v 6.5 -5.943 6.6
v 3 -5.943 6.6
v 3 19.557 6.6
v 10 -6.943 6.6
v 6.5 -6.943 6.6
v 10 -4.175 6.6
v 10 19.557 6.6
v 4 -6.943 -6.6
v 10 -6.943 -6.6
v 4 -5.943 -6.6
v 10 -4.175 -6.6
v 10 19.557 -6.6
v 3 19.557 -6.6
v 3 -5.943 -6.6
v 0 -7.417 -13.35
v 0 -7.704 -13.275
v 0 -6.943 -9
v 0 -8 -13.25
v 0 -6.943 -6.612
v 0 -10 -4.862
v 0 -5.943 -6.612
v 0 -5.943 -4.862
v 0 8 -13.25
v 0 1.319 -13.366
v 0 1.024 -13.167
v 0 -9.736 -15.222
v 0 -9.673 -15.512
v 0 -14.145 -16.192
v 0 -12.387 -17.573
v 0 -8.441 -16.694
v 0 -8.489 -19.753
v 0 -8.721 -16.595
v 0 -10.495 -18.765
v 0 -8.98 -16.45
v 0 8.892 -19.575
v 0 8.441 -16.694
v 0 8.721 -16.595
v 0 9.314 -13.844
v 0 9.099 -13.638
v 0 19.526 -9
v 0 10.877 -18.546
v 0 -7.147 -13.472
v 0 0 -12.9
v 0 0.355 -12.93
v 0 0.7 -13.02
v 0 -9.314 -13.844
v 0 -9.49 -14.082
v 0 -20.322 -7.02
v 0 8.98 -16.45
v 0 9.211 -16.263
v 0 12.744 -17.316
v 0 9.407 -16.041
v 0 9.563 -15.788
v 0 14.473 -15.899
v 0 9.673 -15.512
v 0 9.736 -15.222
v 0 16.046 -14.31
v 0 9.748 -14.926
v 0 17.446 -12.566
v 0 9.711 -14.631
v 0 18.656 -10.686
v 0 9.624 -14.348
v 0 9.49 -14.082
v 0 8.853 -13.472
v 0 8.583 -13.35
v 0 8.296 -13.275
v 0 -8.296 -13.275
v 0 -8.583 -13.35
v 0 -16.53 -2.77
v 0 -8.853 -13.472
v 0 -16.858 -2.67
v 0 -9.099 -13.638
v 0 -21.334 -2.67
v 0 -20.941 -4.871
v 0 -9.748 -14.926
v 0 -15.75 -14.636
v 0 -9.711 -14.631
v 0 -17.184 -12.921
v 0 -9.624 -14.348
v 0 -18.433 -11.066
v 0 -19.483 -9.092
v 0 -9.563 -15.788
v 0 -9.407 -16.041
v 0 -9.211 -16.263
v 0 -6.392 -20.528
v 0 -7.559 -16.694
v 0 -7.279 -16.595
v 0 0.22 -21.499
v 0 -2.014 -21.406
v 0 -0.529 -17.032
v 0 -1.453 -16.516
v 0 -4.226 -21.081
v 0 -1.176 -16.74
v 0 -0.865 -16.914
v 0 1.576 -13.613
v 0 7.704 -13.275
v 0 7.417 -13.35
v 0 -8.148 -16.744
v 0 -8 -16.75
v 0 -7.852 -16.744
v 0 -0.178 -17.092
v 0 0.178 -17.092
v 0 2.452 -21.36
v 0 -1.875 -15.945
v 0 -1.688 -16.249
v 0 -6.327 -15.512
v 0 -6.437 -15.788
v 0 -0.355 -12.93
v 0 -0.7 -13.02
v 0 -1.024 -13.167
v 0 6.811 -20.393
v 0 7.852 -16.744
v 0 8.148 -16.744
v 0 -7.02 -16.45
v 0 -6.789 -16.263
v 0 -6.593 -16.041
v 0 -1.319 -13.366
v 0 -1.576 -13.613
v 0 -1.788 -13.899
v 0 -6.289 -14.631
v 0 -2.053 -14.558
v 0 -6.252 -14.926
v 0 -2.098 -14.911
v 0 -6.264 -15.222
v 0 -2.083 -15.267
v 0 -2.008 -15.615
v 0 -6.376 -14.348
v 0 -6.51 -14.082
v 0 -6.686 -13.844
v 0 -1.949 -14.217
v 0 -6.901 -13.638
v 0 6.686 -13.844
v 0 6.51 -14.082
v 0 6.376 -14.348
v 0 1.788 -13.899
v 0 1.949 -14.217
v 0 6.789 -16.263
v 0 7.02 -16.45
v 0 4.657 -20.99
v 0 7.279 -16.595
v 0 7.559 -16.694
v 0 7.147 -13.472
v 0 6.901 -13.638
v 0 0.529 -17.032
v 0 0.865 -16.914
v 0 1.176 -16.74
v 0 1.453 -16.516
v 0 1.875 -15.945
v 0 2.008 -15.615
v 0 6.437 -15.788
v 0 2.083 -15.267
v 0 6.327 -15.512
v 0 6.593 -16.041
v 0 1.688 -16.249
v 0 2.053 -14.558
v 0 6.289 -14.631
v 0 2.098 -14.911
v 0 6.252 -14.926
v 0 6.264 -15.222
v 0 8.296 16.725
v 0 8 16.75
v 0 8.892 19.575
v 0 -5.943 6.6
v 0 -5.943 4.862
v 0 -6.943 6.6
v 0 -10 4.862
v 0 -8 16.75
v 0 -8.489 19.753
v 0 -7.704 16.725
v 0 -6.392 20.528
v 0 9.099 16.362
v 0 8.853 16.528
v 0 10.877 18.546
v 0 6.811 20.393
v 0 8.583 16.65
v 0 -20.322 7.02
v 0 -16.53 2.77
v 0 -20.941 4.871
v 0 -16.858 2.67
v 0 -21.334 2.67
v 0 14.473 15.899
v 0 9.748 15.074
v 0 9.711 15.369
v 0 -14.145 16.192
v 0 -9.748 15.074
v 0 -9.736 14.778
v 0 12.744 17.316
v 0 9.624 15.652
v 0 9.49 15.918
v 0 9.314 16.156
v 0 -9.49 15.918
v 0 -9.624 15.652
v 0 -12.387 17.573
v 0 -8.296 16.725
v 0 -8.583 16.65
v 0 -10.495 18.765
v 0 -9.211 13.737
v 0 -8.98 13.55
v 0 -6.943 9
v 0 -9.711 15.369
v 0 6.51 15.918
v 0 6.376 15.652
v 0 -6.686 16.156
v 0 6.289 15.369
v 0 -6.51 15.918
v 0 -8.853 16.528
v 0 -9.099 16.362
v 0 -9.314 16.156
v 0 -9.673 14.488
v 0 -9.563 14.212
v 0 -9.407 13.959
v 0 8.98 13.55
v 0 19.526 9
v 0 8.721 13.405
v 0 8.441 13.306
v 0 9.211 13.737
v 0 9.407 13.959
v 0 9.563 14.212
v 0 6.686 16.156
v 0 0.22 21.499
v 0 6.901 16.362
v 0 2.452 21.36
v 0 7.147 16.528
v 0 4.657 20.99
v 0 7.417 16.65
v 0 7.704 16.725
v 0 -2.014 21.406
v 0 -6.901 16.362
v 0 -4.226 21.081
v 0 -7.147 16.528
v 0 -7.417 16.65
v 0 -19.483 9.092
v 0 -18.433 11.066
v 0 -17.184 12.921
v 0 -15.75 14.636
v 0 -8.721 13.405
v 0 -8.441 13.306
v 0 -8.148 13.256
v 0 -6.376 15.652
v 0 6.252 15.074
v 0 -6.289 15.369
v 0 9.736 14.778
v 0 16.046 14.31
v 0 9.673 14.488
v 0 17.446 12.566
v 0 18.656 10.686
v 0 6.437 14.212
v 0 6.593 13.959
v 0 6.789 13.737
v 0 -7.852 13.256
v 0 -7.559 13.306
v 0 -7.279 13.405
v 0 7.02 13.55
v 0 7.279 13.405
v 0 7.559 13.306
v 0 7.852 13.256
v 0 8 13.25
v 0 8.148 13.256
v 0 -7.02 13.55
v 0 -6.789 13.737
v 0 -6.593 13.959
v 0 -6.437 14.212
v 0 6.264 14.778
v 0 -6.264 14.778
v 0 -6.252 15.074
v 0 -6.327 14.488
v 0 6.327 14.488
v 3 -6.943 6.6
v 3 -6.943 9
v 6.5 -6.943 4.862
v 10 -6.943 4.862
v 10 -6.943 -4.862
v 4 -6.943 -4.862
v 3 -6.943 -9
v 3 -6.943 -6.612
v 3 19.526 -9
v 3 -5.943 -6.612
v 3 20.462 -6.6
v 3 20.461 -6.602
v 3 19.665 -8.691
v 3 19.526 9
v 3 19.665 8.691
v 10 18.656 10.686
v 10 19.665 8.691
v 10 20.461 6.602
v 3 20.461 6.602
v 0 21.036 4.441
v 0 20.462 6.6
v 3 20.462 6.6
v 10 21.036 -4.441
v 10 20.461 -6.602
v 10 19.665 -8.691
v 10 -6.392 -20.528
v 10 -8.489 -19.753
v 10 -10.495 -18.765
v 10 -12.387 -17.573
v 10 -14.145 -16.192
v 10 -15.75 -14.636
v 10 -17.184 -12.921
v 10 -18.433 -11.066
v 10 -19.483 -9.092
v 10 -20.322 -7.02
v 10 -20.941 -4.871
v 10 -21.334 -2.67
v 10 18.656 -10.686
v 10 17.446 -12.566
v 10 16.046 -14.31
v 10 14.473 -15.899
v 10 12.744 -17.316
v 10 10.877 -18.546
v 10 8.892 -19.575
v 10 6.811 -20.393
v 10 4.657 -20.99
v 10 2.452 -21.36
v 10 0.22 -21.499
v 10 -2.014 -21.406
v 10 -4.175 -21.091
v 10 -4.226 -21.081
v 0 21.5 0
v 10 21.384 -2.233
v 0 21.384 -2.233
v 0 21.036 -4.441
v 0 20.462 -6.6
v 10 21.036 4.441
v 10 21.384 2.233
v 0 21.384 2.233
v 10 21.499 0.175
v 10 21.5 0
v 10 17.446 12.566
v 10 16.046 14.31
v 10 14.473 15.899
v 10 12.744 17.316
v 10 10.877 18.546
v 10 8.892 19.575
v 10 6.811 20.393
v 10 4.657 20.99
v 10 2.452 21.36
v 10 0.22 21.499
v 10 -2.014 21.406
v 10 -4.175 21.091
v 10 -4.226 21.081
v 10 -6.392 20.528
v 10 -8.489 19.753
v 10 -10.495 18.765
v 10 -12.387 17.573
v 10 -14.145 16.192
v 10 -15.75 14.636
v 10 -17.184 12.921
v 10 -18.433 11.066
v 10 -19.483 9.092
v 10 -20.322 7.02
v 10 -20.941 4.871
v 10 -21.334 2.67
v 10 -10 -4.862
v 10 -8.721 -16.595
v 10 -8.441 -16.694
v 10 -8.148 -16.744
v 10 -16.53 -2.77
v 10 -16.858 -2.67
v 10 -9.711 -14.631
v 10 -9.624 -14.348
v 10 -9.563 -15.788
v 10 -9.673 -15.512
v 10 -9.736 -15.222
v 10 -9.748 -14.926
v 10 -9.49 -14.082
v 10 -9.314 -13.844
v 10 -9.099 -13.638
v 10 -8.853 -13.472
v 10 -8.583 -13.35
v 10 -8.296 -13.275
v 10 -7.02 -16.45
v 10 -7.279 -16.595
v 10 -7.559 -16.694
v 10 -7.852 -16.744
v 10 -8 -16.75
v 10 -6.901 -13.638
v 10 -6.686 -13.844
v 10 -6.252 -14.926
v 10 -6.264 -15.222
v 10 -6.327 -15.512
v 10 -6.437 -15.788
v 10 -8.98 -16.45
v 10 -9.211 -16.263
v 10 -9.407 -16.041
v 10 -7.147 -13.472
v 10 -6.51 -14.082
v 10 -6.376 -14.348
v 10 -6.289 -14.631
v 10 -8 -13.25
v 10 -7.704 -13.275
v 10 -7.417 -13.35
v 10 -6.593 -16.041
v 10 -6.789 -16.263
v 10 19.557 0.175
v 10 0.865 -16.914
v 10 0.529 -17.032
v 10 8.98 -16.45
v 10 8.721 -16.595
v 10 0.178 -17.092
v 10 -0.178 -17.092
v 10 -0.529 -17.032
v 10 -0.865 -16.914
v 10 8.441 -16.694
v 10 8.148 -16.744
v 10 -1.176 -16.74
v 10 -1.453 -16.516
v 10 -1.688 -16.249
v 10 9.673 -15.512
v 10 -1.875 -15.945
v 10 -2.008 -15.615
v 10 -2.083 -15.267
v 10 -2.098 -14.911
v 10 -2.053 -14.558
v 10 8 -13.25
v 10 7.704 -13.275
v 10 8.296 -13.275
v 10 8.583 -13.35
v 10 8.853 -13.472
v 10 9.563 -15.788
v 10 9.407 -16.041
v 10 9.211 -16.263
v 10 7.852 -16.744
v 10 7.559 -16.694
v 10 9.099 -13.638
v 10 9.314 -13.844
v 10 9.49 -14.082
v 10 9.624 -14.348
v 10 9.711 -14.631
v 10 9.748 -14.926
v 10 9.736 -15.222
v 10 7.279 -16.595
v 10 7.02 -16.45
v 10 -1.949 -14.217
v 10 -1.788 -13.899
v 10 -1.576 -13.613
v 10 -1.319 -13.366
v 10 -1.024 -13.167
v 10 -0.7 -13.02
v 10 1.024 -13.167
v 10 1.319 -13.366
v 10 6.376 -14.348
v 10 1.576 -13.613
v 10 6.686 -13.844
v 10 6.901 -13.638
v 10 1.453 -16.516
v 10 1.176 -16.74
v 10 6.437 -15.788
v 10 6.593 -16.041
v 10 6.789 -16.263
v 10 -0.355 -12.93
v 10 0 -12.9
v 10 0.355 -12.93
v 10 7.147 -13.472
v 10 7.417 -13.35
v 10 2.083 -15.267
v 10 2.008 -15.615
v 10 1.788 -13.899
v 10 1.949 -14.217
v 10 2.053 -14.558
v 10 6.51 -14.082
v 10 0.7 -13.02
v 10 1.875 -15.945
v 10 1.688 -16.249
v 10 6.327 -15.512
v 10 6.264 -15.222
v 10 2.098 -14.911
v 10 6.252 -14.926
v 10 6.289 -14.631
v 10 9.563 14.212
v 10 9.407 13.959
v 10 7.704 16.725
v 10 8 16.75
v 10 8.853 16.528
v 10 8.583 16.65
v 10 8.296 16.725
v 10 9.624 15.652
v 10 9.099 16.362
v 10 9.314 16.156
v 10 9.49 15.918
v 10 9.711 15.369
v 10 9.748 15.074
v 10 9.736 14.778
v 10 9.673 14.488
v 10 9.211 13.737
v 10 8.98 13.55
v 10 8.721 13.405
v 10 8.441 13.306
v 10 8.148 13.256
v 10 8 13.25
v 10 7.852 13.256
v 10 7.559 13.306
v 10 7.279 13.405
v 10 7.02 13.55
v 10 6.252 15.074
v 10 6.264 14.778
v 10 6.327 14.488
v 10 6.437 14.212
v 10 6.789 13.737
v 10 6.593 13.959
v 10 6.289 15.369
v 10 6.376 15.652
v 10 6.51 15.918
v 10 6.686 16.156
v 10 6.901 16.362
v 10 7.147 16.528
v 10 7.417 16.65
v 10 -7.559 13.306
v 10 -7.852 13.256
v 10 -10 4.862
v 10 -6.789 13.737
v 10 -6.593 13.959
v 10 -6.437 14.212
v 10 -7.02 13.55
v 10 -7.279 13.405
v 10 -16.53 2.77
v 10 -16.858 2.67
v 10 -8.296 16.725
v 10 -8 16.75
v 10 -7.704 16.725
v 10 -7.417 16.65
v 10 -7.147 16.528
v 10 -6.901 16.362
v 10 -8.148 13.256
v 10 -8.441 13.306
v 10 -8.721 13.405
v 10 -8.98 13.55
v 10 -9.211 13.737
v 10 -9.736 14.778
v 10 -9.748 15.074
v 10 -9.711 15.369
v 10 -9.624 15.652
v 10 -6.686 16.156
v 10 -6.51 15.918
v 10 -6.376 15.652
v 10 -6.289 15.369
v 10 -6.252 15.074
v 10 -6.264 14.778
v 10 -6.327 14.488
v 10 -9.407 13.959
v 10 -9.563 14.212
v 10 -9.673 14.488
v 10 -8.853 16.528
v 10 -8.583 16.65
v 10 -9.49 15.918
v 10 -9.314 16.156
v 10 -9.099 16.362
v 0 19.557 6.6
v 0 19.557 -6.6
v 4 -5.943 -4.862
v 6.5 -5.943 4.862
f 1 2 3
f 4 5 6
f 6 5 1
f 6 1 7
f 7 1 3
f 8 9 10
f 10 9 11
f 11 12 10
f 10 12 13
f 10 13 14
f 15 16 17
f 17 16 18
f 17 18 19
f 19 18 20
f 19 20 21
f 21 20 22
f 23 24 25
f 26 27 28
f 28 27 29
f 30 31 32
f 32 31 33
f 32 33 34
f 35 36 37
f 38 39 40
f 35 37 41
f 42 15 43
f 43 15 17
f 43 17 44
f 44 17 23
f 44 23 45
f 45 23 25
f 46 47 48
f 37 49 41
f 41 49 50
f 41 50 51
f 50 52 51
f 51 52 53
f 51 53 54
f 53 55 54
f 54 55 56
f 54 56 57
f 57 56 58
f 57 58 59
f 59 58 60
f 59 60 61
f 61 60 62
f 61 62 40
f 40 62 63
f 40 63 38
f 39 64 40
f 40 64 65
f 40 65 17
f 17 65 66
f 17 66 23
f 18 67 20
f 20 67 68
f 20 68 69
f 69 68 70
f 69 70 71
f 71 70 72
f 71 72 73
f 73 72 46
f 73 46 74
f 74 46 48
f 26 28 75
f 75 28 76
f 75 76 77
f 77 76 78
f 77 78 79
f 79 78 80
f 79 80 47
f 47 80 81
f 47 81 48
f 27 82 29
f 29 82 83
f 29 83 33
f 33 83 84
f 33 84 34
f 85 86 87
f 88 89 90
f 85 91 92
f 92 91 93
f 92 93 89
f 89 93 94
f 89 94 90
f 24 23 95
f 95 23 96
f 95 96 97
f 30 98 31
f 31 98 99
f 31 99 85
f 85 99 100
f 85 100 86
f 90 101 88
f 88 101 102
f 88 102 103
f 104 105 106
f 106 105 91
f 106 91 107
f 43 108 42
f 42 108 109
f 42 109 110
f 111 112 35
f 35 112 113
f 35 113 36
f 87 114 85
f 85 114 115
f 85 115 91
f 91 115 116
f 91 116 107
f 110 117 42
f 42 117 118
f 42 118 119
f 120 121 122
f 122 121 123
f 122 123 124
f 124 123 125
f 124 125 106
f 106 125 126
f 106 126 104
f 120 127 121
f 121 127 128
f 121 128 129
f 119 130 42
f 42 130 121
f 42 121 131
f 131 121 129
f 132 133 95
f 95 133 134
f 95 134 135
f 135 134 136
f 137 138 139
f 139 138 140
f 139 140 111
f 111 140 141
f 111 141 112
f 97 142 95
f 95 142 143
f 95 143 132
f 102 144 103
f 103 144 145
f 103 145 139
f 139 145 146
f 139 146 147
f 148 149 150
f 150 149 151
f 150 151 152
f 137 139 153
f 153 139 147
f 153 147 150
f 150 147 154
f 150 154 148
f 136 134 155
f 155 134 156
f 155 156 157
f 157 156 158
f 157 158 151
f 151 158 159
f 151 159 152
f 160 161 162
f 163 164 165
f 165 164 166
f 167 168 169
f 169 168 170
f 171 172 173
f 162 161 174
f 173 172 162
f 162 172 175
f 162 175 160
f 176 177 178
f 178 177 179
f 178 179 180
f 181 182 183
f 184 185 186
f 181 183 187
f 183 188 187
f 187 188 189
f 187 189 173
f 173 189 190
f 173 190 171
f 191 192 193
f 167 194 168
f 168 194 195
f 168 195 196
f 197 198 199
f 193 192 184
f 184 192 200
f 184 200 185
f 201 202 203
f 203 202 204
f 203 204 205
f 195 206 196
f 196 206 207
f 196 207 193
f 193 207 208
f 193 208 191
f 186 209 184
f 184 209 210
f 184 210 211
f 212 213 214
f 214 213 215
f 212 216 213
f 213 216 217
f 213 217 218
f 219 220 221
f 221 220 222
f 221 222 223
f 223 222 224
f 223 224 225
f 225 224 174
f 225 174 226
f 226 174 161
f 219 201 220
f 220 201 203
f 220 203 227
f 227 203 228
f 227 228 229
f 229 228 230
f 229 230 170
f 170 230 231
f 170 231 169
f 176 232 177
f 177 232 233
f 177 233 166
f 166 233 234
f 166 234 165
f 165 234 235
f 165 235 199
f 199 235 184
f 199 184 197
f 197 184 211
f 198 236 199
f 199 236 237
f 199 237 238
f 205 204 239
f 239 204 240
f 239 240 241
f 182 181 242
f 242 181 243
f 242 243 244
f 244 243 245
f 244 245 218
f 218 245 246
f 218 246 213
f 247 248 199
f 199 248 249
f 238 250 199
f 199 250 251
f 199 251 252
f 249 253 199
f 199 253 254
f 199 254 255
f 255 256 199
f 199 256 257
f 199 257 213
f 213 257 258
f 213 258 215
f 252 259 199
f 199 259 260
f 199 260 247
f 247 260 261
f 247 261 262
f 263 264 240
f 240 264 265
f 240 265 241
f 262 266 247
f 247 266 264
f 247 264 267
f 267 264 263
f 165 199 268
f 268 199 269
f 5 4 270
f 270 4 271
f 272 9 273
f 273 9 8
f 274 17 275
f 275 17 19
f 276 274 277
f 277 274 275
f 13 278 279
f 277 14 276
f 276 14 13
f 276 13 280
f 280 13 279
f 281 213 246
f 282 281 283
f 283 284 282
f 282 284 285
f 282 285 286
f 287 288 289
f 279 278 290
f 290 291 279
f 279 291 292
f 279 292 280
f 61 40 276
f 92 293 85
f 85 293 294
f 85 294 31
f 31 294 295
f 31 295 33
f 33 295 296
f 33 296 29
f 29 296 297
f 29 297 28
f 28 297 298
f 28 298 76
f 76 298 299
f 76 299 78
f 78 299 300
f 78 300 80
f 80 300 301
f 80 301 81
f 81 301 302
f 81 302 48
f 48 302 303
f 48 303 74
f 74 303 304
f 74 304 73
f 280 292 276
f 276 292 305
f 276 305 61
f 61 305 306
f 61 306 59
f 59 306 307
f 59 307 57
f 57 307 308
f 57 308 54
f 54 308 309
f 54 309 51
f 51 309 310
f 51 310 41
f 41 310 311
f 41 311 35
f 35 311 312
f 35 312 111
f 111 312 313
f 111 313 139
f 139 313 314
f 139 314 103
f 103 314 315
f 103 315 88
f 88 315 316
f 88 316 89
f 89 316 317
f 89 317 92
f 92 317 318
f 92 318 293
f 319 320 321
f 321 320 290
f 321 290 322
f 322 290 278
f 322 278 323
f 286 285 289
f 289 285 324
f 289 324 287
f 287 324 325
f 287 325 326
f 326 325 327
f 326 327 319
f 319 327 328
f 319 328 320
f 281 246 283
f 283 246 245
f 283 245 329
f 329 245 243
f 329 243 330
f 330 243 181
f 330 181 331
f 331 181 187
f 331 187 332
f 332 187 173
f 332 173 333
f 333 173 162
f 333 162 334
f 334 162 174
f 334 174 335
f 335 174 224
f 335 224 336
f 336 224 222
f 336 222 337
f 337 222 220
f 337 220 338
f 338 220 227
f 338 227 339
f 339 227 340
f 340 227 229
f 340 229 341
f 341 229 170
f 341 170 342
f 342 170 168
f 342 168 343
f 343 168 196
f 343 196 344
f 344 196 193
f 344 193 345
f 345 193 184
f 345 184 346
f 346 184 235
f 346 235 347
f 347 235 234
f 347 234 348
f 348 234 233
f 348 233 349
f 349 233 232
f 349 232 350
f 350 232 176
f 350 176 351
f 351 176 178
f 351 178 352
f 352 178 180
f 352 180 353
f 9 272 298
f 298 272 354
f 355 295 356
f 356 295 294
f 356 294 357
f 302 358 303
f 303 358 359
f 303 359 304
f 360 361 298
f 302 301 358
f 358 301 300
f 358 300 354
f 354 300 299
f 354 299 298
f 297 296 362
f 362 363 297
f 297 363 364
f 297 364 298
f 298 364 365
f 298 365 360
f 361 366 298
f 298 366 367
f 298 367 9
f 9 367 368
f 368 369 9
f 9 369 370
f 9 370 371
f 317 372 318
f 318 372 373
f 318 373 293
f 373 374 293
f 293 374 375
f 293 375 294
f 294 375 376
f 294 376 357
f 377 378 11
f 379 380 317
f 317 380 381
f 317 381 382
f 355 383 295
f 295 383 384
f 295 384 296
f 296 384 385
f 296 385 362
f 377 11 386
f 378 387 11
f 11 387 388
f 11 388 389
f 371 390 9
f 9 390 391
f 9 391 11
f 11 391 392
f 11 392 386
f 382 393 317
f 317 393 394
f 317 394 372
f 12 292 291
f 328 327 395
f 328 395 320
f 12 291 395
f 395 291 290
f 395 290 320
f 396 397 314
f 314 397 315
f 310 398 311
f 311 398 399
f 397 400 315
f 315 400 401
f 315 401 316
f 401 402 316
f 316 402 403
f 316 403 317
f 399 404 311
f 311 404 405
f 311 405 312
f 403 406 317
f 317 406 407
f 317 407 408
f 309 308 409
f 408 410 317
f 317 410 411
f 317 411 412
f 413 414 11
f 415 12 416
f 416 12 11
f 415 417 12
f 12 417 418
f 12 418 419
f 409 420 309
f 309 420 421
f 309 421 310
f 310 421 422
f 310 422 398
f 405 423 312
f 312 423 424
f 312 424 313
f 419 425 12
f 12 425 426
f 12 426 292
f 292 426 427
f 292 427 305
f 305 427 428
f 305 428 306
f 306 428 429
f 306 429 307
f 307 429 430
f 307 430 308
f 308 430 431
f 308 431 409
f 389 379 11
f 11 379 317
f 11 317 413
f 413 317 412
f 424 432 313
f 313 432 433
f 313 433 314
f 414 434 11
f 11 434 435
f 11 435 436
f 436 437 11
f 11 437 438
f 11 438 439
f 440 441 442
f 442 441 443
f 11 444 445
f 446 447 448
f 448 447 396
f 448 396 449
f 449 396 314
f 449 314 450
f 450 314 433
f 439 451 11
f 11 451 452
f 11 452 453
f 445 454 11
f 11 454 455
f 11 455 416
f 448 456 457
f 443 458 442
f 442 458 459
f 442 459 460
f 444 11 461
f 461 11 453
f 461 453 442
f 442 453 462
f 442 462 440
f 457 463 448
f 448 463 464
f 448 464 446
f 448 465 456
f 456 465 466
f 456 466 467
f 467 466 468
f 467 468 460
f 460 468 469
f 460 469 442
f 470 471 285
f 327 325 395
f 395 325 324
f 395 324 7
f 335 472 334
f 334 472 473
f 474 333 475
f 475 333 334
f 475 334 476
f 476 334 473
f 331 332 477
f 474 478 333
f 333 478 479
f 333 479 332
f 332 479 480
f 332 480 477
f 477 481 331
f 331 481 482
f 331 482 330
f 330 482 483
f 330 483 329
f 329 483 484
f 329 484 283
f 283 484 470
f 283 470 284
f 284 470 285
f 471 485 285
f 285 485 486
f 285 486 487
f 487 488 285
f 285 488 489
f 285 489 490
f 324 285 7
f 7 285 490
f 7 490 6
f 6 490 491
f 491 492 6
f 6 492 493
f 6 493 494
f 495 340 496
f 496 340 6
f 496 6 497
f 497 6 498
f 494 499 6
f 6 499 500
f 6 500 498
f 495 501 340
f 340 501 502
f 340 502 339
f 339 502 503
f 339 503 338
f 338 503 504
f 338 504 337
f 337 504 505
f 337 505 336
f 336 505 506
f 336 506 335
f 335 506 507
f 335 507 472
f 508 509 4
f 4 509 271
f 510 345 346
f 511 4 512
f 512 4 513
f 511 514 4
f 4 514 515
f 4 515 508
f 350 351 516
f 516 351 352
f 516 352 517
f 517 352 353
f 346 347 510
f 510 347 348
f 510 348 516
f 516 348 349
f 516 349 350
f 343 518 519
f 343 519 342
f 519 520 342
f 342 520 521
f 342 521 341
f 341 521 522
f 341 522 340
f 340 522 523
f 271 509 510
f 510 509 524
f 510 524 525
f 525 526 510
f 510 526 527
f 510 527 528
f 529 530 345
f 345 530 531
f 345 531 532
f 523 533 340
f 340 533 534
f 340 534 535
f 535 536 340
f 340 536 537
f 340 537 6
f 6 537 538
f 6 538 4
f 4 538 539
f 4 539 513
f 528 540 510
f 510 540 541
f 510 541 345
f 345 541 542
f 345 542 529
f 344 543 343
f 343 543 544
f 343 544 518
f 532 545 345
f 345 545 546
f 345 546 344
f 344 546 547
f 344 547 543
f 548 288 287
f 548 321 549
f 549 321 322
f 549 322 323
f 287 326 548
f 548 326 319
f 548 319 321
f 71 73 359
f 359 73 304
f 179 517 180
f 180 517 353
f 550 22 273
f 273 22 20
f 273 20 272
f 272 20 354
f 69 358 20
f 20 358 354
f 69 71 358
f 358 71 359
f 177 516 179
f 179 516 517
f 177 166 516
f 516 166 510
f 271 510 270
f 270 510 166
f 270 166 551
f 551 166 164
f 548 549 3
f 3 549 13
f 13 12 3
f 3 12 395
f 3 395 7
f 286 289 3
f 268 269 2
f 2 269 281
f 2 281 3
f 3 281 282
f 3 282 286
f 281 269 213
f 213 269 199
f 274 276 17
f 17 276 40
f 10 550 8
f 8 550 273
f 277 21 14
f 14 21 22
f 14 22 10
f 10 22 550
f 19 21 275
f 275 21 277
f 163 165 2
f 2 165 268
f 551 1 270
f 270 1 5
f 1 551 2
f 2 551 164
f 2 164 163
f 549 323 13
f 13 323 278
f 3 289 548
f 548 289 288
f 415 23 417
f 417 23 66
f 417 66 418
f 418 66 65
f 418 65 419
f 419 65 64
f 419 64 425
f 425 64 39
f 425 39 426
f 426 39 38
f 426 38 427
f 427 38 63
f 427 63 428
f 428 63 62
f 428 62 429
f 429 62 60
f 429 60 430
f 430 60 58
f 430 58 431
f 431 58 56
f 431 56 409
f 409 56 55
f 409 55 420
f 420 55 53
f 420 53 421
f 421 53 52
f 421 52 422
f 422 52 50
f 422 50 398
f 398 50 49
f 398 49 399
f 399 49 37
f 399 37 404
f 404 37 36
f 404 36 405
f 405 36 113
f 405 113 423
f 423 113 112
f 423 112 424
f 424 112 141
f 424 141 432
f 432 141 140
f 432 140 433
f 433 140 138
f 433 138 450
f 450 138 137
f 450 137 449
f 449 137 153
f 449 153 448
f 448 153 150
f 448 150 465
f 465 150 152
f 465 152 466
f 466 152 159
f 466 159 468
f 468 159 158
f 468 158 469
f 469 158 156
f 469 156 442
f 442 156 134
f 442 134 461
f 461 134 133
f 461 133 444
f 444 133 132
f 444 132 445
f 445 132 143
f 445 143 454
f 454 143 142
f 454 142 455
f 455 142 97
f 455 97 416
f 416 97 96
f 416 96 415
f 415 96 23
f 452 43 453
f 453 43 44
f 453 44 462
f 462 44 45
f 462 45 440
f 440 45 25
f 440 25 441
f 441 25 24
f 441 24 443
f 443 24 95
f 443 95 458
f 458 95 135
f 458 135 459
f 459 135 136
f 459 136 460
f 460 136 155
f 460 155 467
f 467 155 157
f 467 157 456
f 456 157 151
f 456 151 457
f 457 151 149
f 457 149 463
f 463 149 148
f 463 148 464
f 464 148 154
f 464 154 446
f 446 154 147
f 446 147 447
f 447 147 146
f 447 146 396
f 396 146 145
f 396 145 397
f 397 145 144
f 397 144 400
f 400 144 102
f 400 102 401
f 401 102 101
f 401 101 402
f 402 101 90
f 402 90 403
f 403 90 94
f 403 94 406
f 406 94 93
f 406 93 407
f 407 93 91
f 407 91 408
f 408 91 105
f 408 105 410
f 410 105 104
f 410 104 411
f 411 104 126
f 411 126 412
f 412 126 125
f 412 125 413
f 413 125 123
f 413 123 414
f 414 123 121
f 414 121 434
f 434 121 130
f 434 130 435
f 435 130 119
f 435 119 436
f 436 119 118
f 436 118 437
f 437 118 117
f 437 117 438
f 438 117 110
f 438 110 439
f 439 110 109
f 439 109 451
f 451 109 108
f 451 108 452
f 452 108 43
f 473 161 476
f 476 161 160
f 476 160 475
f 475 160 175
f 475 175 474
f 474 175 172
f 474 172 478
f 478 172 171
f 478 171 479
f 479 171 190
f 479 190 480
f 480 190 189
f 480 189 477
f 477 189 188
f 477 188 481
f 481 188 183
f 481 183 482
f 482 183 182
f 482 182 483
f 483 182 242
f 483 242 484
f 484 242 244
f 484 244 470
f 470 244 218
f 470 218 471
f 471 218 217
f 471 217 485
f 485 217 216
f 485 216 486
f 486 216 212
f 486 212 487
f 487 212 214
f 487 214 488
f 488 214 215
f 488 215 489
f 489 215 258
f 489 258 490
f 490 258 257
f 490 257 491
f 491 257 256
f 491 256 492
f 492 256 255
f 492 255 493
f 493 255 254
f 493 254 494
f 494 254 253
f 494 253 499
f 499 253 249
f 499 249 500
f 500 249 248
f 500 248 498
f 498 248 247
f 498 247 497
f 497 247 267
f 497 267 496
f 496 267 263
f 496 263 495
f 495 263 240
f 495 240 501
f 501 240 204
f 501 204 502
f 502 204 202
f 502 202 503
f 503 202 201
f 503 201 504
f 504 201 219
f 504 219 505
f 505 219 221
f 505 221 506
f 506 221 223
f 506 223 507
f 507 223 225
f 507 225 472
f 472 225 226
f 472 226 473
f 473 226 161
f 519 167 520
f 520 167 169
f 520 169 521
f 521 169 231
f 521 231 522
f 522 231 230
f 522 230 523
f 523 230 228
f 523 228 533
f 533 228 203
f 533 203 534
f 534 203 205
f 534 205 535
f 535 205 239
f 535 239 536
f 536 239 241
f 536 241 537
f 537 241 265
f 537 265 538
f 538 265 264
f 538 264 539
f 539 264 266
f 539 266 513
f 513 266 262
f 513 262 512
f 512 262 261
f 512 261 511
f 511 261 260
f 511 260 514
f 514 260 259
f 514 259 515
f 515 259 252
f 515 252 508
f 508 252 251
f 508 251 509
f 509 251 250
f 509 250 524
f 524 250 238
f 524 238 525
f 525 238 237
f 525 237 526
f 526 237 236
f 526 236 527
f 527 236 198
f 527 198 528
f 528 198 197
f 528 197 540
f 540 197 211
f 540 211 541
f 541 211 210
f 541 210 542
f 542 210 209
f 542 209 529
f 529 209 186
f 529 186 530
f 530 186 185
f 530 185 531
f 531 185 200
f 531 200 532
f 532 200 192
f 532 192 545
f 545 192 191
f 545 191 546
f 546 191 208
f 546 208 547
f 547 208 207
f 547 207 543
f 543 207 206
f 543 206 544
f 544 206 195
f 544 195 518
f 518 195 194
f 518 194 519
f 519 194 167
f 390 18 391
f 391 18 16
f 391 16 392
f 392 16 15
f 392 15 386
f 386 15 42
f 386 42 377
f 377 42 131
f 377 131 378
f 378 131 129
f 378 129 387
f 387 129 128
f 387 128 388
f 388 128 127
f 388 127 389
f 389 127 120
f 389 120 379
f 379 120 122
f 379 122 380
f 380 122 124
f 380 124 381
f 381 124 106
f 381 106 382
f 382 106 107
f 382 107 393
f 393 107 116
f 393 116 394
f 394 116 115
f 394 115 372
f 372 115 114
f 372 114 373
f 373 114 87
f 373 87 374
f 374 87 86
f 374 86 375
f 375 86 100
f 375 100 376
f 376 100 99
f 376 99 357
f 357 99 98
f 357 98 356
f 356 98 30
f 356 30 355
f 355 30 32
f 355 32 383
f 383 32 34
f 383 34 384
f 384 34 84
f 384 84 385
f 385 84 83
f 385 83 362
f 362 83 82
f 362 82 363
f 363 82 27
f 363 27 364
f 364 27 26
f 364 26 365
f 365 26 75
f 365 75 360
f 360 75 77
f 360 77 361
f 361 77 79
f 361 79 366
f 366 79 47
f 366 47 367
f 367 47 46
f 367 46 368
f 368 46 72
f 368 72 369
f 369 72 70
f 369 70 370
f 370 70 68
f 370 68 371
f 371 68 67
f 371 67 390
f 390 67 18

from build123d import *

# Parameters (mm, degrees)
SKETCH1_R           = 21.5
BOSS_EXTRUDE1_DEPTH = 10
CUT_EXTRUDE2_DEPTH  = 10
SKETCH15_W          = 18
SKETCH15_H          = 24.118038922
CUT_EXTRUDE3_DEPTH  = 3
SKETCH17_W          = 4
SKETCH17_H          = 1.75
BOSS_EXTRUDE3_DEPTH = 1
SKETCH18_W          = 6.5
SKETCH18_H          = 1.737607108
BOSS_EXTRUDE4_DEPTH = 1
SKETCH39_W          = 2.4
SKETCH39_H          = 4.126590585
CUT_EXTRUDE7_DEPTH  = 3
SKETCH41_R          = 1.75
SKETCH41_R_2        = 2.1
CUT_EXTRUDE8_DEPTH  = 11


with BuildPart() as part:
    # Sketch1 → Boss-Extrude1 (new body)
    with BuildSketch(Plane(origin=(0, 0, 0), x_dir=(0, 0, -1), z_dir=(1, 0, 0))):
        Circle(SKETCH1_R)
    extrude(amount=BOSS_EXTRUDE1_DEPTH)

    # Sketch13 → Cut-Extrude2 (cut)
    with BuildSketch(Plane(origin=(0, 0, 0), x_dir=(0, 0, -1), z_dir=(1, 0, 0))):
        with BuildLine():
            Line((-2.670420152, -16.85816067), (-2.770420152, -16.530371213))
            Line((-2.770420152, -16.530371213), (-4.862392892, -10))
            Line((-4.862392892, -10), (-4.862392892, -6.943148259))
            Line((-4.862392892, -6.943148259), (-6.6, -6.943148259))
            Line((-6.6, -6.943148259), (-6.6, 19.556851741))
            Line((-6.6, 19.556851741), (6.6, 19.556851741))
            Line((6.6, 19.556851741), (6.6, -6.943148259))
            Line((6.6, -6.943148259), (4.862392892, -6.943148259))
            Line((4.862392892, -6.943148259), (4.862392892, -10))
            Line((4.862392892, -10), (2.770420152, -16.530371213))
            Line((2.770420152, -16.530371213), (2.670420152, -16.85816067))
            Line((2.670420152, -16.85816067), (2.670420152, -21.837327131))
            ThreePointArc((2.670420152, -21.837327131), (1.836835043, -21.92318492), (1.000584871, -21.977234355))
            Line((1.000584871, -21.977234355), (0, -25.25))
            Line((0, -25.25), (-1.000584871, -21.977234355))
            ThreePointArc((-1.000584871, -21.977234355), (-1.836835043, -21.92318492), (-2.670420152, -21.837327131))
            Line((-2.670420152, -21.837327131), (-2.670420152, -16.85816067))
        make_face()
    extrude(amount=CUT_EXTRUDE2_DEPTH, mode=Mode.SUBTRACT)

    # Sketch15 → Cut-Extrude3 (cut)
    with BuildSketch(Plane.ZY):
        with Locations((0, 5.115871202)):
            Rectangle(SKETCH15_W, SKETCH15_H)
    extrude(amount=-CUT_EXTRUDE3_DEPTH, mode=Mode.SUBTRACT)

    # Sketch17 → Boss-Extrude3 (add)
    with BuildSketch(Plane(origin=(0, -6.943148259, 0), x_dir=(1, 0, 0), z_dir=(0, 1, 0))):
        with Locations((2, 5.737392892)):
            Rectangle(SKETCH17_W, SKETCH17_H)
    extrude(amount=BOSS_EXTRUDE3_DEPTH)

    # Sketch18 → Boss-Extrude4 (add)
    with BuildSketch(Plane(origin=(0, -6.943148259, 0), x_dir=(1, 0, 0), z_dir=(0, 1, 0))):
        with Locations((3.25, -5.731196446)):
            Rectangle(SKETCH18_W, SKETCH18_H)
    extrude(amount=BOSS_EXTRUDE4_DEPTH)

    # Sketch39 → Cut-Extrude7 (cut)
    with BuildSketch(Plane(origin=(0, 0, 0), x_dir=(0, 0, -1), z_dir=(1, 0, 0))):
        with Locations((7.8, 19.238185956)):
            Rectangle(SKETCH39_W, SKETCH39_H)
        with Locations((-7.8, 19.238185956)):
            Rectangle(SKETCH39_W, SKETCH39_H)
    extrude(amount=CUT_EXTRUDE7_DEPTH, mode=Mode.SUBTRACT)

    # Sketch41 → Cut-Extrude8 (cut, through all)
    with BuildSketch(Plane.ZY):
        with Locations((-15, 8)):
            Circle(SKETCH41_R)
        with Locations((15, 8)):
            Circle(SKETCH41_R)
        with Locations((15, -8)):
            Circle(SKETCH41_R)
        with Locations((-15, -8)):
            Circle(SKETCH41_R)
        with Locations((-15, 0)):
            Circle(SKETCH41_R_2)
    extrude(amount=-CUT_EXTRUDE8_DEPTH, mode=Mode.SUBTRACT)


solid = part.part
